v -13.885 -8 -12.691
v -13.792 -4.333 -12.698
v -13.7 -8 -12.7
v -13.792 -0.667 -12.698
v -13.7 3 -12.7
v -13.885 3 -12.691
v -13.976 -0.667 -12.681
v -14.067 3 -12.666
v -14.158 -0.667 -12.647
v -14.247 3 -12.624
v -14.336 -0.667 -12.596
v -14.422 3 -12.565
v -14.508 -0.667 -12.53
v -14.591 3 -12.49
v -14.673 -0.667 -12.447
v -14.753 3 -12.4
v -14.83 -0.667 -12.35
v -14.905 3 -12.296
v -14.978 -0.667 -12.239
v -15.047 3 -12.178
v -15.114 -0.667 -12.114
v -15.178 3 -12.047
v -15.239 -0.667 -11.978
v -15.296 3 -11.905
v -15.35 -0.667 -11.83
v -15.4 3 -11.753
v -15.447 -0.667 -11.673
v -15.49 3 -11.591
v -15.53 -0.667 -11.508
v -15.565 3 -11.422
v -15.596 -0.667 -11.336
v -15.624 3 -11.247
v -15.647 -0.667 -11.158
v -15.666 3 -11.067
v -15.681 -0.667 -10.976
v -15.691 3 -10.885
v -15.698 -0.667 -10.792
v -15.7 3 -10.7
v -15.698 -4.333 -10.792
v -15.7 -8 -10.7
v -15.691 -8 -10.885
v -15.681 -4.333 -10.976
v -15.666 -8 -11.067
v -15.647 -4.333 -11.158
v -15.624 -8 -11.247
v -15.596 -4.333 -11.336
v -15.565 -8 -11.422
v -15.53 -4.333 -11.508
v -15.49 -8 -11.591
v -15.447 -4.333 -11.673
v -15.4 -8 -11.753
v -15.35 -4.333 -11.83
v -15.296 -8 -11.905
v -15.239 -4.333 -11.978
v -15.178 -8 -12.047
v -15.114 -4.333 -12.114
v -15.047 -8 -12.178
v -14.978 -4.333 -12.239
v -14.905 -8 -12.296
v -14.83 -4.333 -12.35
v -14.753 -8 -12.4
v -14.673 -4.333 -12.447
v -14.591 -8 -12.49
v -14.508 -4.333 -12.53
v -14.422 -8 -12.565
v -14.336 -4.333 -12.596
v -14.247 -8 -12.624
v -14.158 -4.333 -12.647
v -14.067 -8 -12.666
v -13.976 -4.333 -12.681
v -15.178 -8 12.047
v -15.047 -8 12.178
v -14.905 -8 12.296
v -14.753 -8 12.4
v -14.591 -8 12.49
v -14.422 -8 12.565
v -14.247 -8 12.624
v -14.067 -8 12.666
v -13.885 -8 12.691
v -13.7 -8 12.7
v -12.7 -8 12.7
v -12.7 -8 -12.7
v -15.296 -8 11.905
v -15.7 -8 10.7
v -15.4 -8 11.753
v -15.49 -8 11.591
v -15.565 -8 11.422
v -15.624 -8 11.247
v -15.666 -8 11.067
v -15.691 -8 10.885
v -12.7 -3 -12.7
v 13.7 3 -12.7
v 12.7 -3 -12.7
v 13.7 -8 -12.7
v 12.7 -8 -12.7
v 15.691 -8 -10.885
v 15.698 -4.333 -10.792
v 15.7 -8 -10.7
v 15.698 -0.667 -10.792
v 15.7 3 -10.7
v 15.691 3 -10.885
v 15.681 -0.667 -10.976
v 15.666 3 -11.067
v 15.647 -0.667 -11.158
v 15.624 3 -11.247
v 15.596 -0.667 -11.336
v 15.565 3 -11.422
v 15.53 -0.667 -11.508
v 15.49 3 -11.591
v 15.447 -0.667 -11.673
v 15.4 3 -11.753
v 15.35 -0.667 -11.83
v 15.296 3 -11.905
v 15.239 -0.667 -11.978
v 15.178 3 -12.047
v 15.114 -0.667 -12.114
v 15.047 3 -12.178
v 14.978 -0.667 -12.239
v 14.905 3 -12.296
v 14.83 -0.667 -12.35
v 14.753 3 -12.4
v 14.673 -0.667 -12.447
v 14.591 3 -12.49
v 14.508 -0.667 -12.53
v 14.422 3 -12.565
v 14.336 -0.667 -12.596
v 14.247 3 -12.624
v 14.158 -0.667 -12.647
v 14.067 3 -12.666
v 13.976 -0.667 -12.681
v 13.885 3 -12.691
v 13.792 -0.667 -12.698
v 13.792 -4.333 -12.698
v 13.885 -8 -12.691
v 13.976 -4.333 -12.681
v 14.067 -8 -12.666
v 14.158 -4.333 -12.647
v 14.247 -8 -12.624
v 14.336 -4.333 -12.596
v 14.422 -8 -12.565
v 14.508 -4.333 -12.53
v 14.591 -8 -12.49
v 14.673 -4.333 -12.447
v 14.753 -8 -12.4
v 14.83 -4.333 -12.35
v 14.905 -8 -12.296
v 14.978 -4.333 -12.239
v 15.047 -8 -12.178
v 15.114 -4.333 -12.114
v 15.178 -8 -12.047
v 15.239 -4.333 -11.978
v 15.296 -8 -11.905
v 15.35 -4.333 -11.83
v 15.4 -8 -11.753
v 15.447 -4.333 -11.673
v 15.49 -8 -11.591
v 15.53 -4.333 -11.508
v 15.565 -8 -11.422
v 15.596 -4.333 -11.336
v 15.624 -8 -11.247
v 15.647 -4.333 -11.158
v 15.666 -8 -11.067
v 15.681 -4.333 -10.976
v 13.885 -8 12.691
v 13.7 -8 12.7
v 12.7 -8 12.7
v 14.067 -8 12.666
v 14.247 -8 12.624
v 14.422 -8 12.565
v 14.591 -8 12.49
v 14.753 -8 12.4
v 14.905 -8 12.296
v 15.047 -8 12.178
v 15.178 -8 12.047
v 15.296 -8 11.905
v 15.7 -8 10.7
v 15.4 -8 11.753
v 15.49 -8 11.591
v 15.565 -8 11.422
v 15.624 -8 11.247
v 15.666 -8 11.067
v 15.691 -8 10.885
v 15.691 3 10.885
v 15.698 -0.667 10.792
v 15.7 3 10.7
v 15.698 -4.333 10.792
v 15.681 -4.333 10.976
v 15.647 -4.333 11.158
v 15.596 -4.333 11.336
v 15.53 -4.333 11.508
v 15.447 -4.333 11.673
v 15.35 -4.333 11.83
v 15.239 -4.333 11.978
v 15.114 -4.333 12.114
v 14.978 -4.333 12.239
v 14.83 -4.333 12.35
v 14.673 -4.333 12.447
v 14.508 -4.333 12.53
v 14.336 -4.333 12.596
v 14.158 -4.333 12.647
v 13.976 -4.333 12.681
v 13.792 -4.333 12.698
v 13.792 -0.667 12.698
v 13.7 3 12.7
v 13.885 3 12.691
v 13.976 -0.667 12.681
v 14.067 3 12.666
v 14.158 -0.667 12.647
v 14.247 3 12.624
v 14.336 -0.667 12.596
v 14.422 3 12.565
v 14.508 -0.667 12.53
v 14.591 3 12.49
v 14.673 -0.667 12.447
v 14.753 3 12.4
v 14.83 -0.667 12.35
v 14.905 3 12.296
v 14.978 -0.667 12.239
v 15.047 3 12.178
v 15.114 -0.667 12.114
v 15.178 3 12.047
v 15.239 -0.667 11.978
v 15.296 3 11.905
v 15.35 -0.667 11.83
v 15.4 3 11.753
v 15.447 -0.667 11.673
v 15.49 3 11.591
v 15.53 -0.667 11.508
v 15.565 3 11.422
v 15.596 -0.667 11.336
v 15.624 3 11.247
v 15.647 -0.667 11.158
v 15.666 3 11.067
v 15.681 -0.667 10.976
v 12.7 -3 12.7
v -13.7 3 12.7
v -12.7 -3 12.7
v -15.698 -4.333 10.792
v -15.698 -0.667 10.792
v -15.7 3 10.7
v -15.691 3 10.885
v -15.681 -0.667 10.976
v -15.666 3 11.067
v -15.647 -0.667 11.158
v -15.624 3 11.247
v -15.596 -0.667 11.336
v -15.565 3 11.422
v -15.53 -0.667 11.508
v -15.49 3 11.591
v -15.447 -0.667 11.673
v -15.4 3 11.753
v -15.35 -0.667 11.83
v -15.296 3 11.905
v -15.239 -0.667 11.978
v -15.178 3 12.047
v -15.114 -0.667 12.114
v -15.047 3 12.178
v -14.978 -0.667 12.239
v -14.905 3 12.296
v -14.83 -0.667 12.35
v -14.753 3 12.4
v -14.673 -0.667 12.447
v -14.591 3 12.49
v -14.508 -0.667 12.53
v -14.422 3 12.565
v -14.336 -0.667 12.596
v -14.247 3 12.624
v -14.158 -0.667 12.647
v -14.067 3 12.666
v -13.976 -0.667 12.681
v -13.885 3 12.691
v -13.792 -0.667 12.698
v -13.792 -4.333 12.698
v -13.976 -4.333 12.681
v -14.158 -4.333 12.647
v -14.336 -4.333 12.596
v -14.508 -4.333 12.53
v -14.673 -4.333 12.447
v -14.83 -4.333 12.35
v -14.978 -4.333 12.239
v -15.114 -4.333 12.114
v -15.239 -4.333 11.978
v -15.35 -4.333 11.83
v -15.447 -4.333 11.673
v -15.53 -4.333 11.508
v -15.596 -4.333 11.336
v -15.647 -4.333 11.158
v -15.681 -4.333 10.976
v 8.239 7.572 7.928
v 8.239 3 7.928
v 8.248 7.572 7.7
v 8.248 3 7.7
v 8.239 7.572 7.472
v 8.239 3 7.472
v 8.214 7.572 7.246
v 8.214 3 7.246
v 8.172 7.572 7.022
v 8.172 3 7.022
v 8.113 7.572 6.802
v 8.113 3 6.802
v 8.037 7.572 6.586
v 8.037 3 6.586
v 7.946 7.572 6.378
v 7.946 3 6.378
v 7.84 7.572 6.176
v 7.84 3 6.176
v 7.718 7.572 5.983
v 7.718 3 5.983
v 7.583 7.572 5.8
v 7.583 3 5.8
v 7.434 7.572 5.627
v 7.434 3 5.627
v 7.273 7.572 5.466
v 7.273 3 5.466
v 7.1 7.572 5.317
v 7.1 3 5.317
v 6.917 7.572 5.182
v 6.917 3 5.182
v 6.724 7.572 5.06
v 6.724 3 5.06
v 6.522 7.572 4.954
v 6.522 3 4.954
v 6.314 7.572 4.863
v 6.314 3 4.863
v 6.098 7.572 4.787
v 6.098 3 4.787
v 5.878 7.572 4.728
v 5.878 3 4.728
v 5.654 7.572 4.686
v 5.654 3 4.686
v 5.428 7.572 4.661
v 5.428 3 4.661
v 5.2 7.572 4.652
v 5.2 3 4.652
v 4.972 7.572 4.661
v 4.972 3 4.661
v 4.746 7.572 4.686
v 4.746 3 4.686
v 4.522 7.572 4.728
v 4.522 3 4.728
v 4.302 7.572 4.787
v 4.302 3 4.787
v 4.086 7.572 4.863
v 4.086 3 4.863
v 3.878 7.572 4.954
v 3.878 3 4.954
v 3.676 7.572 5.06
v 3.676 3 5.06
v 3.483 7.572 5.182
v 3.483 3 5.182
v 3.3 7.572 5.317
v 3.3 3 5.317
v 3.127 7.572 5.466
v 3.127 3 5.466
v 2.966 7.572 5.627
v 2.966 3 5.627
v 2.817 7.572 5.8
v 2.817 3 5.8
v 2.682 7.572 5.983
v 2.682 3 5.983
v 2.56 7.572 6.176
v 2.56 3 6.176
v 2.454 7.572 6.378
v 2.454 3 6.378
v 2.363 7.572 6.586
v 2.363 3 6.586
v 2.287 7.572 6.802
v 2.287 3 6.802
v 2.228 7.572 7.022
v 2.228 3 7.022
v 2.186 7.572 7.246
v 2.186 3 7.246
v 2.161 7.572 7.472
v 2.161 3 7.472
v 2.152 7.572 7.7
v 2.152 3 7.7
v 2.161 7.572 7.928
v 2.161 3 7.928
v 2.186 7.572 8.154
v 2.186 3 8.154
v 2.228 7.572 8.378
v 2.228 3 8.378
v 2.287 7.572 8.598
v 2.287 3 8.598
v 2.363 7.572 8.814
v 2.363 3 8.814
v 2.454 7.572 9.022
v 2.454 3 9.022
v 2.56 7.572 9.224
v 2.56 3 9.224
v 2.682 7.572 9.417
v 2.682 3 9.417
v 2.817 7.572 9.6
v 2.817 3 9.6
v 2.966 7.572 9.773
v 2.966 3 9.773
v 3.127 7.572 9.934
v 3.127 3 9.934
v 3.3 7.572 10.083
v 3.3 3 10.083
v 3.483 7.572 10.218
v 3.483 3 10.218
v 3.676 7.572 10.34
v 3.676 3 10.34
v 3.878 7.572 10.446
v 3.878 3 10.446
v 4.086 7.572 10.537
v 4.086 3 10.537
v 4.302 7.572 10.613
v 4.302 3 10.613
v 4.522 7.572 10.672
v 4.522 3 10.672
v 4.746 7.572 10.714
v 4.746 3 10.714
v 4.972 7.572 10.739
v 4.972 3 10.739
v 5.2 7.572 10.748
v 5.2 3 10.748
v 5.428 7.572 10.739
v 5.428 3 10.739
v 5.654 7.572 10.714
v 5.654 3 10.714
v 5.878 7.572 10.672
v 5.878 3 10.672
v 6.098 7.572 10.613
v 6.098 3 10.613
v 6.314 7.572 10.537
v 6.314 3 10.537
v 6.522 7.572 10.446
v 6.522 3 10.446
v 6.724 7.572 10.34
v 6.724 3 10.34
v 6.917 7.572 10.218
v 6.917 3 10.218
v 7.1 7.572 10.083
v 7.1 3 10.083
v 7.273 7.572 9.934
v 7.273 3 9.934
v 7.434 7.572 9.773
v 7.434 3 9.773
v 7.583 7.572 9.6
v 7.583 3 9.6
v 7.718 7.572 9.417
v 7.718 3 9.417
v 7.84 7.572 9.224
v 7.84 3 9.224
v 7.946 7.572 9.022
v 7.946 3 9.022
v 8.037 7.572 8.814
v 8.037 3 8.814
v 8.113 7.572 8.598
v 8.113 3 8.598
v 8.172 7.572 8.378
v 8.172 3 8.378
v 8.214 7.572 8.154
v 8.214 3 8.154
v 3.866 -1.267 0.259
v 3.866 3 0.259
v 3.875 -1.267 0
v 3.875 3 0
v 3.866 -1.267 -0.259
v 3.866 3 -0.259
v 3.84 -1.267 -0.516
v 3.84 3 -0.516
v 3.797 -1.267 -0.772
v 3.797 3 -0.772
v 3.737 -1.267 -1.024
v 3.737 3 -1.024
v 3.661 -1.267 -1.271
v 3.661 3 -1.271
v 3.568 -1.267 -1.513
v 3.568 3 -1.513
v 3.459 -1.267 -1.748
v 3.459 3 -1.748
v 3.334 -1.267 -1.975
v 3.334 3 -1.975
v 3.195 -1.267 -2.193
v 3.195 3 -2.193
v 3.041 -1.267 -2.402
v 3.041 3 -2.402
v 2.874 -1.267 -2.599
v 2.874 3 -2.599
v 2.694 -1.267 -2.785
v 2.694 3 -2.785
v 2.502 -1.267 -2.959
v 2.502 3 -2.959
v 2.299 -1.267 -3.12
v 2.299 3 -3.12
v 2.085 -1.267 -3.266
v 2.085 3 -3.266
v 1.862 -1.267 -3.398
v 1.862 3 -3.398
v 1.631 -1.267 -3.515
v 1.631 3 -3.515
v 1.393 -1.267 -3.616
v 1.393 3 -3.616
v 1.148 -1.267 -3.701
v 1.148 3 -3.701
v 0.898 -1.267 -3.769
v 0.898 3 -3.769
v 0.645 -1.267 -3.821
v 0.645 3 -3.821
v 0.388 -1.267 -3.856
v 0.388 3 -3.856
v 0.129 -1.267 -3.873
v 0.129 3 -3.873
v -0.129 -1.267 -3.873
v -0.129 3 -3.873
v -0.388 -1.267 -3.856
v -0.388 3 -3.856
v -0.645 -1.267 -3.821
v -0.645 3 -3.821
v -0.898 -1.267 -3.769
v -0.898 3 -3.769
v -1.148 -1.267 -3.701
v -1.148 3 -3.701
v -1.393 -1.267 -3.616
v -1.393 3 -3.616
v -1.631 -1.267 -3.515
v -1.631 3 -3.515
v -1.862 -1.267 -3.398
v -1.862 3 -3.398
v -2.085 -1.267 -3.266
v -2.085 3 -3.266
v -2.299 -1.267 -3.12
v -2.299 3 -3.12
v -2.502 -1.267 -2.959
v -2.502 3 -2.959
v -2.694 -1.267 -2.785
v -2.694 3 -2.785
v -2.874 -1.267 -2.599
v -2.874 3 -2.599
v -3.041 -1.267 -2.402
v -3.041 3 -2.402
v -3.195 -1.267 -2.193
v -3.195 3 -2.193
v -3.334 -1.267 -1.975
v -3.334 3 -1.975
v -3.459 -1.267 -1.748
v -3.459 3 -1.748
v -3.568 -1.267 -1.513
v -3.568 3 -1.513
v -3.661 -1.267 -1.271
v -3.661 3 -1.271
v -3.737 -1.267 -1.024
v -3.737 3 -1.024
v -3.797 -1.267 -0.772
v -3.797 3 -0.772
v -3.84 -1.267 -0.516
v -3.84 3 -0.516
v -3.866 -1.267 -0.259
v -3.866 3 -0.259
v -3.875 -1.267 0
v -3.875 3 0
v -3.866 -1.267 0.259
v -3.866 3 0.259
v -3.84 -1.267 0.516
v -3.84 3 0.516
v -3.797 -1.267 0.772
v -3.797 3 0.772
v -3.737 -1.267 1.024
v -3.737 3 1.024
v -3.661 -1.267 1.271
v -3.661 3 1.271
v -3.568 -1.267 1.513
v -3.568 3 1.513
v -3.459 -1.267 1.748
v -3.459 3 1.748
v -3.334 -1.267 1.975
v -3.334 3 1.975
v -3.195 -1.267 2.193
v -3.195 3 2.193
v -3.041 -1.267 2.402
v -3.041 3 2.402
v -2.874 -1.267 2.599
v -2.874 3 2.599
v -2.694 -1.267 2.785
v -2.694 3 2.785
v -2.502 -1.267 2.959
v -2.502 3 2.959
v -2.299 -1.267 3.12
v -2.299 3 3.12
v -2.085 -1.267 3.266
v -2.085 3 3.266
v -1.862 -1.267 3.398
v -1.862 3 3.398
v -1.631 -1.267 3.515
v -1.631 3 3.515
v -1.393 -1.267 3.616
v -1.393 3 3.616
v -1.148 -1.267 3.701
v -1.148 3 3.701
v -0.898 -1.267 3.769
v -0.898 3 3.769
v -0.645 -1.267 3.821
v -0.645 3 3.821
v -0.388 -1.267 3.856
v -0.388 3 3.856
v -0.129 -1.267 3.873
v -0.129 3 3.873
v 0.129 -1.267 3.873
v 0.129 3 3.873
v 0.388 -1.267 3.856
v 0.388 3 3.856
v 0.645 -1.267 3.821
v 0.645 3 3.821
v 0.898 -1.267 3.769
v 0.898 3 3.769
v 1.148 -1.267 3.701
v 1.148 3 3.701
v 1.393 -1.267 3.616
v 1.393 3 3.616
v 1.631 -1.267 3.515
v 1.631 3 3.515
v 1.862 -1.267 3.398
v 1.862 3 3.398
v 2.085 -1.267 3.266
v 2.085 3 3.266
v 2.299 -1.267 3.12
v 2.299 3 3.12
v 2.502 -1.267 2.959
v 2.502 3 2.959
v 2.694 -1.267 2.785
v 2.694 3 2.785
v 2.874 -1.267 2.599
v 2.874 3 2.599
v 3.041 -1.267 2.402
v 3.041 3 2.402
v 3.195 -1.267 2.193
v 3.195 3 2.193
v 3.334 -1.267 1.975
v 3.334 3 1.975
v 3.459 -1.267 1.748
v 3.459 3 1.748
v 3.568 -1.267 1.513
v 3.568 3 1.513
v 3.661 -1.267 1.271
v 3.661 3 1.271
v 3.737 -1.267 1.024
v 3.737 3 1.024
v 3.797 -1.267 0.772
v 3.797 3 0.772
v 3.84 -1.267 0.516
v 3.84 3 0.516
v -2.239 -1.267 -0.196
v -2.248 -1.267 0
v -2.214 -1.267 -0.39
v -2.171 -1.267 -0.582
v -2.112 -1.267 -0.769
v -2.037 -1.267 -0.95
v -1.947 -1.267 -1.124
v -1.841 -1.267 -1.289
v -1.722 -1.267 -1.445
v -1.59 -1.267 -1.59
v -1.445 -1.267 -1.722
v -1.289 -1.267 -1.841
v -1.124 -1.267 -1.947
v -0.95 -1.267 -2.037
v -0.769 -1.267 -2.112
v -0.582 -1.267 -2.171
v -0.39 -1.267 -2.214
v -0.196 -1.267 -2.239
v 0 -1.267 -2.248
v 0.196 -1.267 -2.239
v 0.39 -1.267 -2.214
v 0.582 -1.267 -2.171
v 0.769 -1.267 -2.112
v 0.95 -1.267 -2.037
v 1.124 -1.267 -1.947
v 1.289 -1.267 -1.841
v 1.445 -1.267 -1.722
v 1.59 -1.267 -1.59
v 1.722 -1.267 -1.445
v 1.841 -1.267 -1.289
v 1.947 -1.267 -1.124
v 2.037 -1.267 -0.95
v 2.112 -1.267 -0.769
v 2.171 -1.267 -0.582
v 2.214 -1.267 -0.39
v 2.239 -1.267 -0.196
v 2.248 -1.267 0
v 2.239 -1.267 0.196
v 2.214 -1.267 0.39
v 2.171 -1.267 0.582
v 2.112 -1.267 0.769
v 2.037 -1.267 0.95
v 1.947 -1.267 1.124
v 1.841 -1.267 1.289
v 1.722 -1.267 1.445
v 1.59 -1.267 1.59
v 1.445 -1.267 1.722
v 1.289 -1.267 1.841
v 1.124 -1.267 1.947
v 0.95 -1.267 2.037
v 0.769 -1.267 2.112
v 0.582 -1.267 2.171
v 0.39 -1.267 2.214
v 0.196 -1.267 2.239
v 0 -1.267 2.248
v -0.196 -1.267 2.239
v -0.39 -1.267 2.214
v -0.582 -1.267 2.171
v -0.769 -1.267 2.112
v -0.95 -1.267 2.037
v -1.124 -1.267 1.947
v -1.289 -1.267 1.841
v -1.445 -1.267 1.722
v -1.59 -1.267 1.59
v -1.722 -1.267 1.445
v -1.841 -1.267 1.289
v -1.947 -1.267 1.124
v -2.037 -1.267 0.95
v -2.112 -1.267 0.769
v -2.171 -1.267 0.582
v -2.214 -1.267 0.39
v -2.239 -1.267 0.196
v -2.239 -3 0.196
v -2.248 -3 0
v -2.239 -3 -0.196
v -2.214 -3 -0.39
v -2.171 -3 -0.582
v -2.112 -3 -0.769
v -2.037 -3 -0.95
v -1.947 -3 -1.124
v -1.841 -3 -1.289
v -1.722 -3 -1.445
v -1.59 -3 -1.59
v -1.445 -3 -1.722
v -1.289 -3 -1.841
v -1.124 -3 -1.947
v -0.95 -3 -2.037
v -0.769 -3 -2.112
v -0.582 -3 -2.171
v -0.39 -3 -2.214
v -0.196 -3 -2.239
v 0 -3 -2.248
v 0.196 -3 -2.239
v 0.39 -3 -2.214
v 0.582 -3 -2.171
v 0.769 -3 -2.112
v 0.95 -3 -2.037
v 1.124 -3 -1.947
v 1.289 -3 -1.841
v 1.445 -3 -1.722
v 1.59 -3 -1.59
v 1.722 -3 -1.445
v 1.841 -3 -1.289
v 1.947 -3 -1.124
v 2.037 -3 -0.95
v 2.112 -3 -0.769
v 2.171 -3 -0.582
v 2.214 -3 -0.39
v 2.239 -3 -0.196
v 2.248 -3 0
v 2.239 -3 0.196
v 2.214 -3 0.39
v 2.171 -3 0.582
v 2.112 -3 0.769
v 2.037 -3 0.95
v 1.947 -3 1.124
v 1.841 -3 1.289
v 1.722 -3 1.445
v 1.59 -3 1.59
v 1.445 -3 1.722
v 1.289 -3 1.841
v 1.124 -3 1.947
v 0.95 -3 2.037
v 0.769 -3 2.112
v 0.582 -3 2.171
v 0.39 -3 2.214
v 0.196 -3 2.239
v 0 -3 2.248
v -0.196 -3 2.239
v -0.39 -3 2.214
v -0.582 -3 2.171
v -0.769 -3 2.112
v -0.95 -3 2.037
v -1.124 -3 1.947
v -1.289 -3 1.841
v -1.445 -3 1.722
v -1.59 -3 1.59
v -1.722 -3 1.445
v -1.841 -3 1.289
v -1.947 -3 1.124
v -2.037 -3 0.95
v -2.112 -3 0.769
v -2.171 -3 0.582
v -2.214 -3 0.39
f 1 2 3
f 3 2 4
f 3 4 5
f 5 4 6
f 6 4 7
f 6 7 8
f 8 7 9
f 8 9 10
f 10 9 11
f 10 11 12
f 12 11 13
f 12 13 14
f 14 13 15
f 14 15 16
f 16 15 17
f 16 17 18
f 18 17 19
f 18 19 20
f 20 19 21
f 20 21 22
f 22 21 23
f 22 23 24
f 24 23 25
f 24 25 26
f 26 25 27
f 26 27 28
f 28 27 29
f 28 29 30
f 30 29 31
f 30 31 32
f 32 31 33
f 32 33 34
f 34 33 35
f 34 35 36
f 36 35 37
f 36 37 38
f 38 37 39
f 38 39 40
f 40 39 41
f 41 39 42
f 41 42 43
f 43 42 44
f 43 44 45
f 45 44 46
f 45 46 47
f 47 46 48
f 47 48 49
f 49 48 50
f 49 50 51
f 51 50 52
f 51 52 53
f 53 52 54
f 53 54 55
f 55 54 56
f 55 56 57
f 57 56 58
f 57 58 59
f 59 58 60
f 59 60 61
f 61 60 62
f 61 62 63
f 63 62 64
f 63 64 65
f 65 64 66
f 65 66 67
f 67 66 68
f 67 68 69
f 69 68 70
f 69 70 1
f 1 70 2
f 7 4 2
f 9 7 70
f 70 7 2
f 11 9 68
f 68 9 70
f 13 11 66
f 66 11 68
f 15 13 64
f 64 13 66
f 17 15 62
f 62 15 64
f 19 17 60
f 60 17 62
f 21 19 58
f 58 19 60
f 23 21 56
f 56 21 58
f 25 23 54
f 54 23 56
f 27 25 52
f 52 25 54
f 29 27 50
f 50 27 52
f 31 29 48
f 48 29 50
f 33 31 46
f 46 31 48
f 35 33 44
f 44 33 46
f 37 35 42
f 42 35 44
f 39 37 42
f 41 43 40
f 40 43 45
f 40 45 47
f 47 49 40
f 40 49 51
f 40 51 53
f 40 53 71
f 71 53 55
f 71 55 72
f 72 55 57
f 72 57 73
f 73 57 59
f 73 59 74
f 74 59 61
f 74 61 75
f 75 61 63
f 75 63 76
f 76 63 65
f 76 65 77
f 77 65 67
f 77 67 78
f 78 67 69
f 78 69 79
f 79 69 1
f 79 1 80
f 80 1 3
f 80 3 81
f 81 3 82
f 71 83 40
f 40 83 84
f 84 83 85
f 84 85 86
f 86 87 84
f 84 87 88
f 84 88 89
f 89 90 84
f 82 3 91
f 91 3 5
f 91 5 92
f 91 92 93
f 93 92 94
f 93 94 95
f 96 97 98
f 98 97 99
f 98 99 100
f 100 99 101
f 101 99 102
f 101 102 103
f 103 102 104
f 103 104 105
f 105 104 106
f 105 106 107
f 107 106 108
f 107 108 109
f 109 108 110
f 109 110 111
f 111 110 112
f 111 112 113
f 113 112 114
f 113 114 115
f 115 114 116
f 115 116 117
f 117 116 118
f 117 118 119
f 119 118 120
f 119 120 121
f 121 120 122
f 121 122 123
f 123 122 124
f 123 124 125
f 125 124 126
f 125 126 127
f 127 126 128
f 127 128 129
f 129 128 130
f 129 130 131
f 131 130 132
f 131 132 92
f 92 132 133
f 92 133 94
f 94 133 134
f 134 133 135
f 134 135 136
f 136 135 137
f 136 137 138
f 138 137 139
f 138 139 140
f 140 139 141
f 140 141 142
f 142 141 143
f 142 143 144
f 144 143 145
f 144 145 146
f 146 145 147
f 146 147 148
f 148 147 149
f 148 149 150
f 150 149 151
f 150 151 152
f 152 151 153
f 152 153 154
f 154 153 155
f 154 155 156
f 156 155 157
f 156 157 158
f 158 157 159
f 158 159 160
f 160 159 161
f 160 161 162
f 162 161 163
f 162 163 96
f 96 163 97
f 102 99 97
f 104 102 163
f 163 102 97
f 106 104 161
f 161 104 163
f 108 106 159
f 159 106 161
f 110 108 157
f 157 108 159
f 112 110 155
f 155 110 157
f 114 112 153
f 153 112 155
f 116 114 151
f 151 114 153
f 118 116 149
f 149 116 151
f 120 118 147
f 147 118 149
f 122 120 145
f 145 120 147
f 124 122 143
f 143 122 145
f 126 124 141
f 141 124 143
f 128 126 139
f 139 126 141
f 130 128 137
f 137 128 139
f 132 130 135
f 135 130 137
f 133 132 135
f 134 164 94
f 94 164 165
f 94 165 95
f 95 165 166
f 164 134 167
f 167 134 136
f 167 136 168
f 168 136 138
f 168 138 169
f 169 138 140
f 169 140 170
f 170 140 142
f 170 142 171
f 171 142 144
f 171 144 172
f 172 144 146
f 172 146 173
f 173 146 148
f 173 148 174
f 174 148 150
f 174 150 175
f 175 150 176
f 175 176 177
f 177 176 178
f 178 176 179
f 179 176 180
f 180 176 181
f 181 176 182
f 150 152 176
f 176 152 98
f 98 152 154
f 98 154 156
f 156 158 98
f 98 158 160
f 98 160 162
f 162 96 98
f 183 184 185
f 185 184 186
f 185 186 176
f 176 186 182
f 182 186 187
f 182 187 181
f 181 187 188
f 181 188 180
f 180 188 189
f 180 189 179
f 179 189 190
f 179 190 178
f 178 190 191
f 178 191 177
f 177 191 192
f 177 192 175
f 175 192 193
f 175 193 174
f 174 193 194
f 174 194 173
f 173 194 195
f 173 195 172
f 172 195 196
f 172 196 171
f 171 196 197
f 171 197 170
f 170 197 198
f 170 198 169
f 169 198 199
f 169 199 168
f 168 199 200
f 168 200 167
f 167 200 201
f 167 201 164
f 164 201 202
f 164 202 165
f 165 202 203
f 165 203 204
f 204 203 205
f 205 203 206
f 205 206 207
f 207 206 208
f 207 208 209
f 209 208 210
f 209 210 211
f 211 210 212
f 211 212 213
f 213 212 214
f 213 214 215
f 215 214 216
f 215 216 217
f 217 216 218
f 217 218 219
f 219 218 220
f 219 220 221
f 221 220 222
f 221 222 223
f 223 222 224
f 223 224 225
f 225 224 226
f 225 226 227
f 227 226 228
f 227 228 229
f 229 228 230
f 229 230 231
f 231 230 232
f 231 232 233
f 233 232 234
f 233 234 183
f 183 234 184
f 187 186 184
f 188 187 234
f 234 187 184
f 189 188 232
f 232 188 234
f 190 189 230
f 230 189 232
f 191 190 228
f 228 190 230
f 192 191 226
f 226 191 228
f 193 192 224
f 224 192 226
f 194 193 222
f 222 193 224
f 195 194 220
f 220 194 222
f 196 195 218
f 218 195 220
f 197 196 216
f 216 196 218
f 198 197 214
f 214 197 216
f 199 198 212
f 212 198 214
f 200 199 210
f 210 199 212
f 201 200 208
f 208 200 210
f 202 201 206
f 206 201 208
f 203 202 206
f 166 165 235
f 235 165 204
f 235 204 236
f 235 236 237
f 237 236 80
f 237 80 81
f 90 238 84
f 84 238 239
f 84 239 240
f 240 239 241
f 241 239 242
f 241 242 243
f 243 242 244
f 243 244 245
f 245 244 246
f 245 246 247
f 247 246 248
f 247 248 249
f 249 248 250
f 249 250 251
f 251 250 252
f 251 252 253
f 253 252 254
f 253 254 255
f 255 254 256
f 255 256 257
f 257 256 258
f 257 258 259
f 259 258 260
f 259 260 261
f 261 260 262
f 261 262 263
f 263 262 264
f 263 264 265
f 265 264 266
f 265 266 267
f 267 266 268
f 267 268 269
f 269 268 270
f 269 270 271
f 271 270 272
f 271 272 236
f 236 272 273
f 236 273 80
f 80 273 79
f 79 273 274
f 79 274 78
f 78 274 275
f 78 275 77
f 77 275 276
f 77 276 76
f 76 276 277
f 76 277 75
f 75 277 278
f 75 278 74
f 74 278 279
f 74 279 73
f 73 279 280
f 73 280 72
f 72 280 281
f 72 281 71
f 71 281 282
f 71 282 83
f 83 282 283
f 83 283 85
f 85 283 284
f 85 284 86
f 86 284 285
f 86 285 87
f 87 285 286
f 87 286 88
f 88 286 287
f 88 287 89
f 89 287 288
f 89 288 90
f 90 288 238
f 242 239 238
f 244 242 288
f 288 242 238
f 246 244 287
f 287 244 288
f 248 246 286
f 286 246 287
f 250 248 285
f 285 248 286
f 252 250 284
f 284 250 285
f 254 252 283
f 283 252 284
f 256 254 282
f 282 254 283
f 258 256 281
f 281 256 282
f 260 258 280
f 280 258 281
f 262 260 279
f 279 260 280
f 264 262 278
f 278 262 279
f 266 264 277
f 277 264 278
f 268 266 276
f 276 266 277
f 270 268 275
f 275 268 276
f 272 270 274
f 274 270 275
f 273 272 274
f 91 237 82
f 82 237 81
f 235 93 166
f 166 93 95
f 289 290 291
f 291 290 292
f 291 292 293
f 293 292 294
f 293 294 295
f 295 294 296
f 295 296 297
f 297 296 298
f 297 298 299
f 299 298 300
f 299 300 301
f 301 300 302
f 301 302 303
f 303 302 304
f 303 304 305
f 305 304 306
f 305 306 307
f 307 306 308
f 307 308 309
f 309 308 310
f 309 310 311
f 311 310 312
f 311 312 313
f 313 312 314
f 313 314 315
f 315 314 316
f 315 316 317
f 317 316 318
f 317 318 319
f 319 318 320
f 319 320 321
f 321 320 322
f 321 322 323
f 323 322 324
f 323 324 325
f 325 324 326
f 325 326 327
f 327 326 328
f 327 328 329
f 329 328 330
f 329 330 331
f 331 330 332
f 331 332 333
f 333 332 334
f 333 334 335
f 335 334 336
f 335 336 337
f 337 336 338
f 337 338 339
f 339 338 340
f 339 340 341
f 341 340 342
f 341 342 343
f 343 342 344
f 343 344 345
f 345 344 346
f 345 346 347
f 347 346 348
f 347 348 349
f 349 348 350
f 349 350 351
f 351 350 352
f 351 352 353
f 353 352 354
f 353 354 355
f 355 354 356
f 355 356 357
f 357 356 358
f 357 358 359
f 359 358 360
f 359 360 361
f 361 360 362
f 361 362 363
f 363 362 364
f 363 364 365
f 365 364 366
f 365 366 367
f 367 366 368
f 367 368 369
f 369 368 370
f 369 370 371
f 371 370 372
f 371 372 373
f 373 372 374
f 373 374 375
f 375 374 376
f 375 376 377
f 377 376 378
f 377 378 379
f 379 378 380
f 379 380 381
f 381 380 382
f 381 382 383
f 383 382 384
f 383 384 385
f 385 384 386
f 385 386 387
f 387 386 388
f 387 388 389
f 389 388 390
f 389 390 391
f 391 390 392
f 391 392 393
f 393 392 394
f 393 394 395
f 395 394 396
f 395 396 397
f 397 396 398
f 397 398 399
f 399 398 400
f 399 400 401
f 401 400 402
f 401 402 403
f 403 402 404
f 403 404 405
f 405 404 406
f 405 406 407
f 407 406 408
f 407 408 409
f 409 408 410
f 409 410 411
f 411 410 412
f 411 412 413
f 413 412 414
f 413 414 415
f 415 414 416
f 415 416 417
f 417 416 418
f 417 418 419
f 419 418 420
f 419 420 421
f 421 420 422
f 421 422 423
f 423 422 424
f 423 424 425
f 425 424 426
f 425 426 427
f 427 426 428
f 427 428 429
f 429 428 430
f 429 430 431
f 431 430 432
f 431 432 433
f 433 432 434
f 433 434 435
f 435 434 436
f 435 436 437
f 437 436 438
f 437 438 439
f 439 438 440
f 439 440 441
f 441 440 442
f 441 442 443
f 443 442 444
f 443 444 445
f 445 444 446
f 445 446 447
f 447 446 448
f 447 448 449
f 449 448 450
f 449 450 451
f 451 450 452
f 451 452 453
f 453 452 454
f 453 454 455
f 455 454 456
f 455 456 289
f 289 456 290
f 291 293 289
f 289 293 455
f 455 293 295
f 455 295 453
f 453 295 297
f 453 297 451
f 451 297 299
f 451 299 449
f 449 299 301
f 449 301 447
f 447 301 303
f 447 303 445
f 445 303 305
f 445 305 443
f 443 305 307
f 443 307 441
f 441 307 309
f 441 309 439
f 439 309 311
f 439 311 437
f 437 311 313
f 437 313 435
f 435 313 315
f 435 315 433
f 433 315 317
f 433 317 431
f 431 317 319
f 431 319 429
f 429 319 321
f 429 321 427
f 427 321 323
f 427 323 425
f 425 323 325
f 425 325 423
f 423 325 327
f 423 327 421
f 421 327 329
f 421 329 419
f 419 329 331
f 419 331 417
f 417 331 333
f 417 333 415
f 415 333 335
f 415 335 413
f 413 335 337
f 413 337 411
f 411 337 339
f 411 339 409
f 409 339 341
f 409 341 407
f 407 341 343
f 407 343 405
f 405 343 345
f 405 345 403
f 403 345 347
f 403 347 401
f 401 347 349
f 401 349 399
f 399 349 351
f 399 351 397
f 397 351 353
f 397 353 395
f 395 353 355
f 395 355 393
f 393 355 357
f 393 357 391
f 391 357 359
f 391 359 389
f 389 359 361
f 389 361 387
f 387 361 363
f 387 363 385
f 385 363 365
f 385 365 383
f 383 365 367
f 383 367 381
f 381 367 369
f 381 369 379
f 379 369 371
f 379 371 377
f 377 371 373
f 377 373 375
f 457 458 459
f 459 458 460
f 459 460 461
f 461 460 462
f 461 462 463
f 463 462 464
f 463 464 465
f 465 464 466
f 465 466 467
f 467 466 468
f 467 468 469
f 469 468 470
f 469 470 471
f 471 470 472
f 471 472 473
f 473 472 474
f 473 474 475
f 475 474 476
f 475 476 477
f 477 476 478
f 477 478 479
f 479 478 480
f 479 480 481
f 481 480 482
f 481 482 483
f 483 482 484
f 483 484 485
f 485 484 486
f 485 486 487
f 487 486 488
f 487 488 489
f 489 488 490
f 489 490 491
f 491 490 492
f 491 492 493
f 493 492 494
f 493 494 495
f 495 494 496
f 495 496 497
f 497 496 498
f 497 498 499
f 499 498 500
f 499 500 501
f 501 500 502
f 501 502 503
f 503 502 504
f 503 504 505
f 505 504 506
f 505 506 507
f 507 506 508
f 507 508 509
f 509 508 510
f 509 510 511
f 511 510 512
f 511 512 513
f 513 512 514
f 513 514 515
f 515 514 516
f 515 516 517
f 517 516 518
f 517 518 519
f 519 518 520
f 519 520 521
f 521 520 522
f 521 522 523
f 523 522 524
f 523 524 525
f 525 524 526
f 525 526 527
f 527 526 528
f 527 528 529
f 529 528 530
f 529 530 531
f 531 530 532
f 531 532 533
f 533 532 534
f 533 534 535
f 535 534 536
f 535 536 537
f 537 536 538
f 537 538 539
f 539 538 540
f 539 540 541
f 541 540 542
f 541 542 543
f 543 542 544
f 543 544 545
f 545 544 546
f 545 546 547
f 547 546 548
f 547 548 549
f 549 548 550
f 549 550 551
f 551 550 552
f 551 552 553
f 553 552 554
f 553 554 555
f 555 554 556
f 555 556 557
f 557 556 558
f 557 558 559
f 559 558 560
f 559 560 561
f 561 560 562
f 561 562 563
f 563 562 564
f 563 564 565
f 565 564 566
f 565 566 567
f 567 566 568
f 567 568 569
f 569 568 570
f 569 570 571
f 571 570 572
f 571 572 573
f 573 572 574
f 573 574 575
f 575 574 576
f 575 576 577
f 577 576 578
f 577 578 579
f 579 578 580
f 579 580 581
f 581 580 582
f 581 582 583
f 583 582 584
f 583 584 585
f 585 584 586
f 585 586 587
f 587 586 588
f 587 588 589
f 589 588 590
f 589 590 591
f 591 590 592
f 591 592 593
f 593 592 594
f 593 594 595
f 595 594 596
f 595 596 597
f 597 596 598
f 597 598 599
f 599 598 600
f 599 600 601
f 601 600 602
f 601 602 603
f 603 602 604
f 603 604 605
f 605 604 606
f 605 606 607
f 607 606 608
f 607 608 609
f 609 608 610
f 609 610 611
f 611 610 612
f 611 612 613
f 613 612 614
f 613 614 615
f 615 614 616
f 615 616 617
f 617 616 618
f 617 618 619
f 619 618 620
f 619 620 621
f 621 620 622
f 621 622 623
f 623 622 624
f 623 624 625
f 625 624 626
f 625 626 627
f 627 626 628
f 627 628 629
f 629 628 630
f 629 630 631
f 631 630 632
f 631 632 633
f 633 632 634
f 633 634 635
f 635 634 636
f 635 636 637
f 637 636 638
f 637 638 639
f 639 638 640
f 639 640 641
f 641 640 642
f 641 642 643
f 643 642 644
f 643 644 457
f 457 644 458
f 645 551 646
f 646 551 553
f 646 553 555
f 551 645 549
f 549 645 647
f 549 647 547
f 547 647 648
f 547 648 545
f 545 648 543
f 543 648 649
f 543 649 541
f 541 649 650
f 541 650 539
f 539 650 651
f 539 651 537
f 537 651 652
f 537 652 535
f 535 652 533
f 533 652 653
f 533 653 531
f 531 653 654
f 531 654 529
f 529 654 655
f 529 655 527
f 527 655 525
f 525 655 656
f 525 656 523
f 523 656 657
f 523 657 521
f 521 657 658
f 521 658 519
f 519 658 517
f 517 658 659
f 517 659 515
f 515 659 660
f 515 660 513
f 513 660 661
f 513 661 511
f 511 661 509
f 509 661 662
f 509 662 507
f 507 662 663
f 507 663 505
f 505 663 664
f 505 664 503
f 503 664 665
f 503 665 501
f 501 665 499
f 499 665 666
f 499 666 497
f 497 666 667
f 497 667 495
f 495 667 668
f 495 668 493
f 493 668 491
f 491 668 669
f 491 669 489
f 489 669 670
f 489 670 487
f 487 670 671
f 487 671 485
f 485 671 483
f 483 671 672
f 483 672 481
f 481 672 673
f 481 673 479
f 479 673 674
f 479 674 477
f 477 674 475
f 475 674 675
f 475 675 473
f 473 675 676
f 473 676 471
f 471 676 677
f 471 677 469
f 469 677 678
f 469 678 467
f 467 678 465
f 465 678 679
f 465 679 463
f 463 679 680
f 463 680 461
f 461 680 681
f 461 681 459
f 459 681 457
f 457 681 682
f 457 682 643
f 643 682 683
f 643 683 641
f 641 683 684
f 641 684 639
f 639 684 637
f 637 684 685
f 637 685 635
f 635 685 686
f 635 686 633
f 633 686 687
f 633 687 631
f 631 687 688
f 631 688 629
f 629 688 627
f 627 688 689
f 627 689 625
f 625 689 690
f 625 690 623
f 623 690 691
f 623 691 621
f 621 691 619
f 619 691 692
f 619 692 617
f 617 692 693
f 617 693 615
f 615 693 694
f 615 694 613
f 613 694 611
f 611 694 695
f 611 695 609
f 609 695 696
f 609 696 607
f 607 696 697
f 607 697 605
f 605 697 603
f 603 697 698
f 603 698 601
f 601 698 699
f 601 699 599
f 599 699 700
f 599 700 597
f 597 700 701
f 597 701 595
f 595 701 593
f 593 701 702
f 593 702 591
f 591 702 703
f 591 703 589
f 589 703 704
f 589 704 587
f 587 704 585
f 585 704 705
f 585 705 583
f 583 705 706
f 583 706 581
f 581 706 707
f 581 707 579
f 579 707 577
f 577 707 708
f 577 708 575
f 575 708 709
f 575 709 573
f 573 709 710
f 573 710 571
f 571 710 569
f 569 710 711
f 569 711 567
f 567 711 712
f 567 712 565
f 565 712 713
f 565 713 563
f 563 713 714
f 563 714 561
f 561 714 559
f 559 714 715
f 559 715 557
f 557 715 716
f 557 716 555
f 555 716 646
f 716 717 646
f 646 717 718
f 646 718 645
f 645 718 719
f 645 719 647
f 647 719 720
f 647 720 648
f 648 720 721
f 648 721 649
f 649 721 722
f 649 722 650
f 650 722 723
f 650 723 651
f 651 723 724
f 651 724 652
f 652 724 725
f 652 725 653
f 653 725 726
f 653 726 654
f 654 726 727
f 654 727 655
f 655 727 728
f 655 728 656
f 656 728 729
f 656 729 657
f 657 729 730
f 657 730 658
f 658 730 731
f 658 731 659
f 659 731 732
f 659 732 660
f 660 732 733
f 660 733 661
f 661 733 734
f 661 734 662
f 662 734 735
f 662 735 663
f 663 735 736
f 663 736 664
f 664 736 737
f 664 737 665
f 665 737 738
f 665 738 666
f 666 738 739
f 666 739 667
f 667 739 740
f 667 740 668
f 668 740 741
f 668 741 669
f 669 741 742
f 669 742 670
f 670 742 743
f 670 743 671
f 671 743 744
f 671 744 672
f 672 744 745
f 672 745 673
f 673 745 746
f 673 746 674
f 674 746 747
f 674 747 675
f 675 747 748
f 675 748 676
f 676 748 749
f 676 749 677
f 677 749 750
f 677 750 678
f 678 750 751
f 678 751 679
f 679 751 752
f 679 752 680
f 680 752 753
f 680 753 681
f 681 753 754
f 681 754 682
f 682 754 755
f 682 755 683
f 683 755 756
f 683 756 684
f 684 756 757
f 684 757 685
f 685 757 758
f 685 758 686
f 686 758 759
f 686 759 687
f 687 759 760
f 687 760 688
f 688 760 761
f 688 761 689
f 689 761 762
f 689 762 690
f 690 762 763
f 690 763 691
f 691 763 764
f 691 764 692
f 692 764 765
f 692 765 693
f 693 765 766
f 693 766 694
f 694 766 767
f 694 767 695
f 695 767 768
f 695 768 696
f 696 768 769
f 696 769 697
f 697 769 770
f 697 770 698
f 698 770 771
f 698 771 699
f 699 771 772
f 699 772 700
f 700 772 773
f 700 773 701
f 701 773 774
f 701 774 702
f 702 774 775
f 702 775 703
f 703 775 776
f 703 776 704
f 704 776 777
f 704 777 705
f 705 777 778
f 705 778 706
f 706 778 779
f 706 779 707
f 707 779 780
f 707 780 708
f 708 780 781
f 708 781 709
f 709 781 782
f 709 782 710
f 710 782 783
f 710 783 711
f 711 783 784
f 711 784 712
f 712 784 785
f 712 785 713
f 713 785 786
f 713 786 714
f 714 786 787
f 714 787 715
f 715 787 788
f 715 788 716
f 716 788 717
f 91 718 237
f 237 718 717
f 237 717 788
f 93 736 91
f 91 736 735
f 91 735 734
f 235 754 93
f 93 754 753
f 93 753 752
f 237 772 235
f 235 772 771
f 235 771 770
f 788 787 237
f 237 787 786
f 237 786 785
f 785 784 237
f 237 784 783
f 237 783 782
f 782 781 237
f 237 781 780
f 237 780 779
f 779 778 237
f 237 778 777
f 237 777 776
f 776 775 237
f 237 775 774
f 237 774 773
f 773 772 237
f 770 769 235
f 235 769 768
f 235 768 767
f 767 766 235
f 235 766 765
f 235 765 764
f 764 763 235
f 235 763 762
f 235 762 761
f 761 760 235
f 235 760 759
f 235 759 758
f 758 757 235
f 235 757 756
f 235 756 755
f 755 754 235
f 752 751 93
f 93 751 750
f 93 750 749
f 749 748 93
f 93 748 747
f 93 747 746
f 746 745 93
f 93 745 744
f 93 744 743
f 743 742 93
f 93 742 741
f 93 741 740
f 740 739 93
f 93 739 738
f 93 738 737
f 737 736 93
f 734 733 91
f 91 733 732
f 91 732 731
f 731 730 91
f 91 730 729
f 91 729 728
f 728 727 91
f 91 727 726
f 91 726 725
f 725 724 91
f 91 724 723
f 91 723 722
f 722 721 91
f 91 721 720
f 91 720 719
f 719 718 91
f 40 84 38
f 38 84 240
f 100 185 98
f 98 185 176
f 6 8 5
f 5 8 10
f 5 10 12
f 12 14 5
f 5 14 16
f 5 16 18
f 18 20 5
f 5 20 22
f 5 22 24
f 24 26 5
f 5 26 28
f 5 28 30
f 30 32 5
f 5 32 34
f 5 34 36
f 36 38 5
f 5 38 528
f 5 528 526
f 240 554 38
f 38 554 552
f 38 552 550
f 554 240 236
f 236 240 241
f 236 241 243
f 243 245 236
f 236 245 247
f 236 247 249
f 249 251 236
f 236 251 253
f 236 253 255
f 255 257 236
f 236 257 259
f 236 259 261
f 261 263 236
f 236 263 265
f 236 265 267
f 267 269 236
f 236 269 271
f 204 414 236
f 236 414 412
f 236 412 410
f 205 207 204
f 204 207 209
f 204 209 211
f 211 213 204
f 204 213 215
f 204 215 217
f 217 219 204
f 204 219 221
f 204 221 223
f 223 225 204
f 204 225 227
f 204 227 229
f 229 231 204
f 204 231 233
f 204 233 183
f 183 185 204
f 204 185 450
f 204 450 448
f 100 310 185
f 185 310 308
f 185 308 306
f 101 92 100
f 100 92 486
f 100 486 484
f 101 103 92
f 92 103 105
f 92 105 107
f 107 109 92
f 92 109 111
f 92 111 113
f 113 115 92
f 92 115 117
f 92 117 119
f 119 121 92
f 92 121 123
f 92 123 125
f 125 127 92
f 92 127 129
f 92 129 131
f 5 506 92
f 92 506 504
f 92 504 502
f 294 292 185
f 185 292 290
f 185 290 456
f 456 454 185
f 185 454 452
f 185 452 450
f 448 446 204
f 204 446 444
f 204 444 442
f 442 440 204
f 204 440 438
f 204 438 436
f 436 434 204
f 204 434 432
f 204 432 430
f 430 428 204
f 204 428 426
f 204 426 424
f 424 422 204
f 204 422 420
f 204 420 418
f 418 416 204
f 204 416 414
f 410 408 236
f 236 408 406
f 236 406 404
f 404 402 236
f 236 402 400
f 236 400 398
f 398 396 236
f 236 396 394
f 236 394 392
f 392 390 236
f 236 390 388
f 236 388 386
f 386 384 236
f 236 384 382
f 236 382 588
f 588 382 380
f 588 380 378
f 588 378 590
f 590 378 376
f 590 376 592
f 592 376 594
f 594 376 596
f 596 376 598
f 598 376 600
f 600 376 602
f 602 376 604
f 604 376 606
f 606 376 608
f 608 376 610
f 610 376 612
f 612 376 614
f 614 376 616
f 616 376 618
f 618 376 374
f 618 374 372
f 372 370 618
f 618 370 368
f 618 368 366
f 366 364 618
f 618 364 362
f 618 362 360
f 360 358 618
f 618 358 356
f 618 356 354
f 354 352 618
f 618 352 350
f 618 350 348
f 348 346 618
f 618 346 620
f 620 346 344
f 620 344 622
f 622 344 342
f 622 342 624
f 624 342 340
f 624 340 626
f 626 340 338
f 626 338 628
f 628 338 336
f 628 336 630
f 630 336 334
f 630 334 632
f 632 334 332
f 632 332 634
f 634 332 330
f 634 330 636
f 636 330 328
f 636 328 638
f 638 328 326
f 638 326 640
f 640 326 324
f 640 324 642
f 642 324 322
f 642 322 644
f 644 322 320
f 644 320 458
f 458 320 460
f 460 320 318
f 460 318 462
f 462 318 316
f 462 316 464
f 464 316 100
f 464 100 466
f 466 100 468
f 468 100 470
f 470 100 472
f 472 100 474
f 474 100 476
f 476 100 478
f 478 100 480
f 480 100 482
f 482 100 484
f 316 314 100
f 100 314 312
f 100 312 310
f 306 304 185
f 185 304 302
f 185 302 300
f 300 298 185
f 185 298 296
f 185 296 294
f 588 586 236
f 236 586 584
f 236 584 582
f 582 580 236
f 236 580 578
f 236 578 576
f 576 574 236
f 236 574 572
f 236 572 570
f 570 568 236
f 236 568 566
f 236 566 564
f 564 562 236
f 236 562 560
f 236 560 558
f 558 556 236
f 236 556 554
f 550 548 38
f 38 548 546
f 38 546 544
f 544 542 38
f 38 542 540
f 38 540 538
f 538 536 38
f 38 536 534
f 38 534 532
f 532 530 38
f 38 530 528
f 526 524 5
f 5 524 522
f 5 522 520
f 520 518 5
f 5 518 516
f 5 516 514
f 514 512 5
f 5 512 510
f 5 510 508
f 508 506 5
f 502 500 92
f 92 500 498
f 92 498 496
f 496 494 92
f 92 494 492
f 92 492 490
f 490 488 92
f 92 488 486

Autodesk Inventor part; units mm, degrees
ref_plane "YZ Plane" through (0, 0, 0) normal (1, 0, 0) x (0, 1, 0)
ref_plane "XZ Plane" through (0, 0, 0) normal (0, 1, 0) x (-1, 0, 0)
ref_plane "XY Plane" through (0, 0, 0) normal (0, 0, 1) x (1, 0, 0)
sketch "Sketch1" plane through (0, 0, 0) normal (0, 1, 0) x (-1, 0, 0)
  line L0 (-15.7, 12.7) -> (15.7, 12.7)
  line L1 (15.7, 12.7) -> (15.7, -12.7)
  line L2 (15.7, -12.7) -> (-15.7, -12.7)
  line L3 (-15.7, -12.7) -> (-15.7, 12.7)
  line L4 (-15.7, 12.7) -> (15.7, -12.7) construction
  line L5 (15.7, 12.7) -> (-15.7, -12.7) construction
  point P0 (0, 0)
  dimension "d0" = 25.4
  dimension "d1" = 31.4
extrude "Extrusion1" add sketch "Sketch1" along normal mid plane 6
sketch "Sketch2" plane through (0, 3, 0) normal (0, 1, 0) x (1, 0, 0)
  point P0 (0, 0)
hole "Hole1" at (0, 3, 0) direction (0, -1, 0) diameter 4.496 end through all clearance for "Flat Head Machine Screw (82)" size "#8" standard "Ansi Unified Screw Threads"
sketch "Sketch3" plane through (0, 3, 0) normal (0, 1, 0) x (1, 0, 0)
  circle A0 centre (0, 0) radius 3.875
  dimension "d11" = 7.75
extrude "Extrusion2" cut sketch "Sketch3" against normal blind 4.2672
sketch "Sketch4" plane through (0, 3, 0) normal (0, 1, 0) x (1, 0, 0)
  circle A0 centre (5.2, -7.7) radius 3.048
  line L0 (-15.7, -12.7) -> (15.7, -12.7) construction
  line L1 (15.7, -12.7) -> (15.7, 12.7) construction
  point P0 (0, 0)
  dimension "d14" = 6.096
  dimension "d18" = 5
  dimension "d23" = 10.5
extrude "Extrusion3" add sketch "Sketch4" along normal blind 4.572
sketch "Sketch5" plane through (0, -3, 0) normal (0, -1, 0) x (1, 0, 0)
  line L0 (-15.7, 12.7) -> (15.7, 12.7) projected
  line L1 (15.7, 12.7) -> (12.7, 12.7)
  line L2 (12.7, 12.7) -> (12.7, -12.7)
  line L3 (12.7, -12.7) -> (15.7, -12.7)
  line L4 (15.7, -12.7) -> (15.7, 12.7)
  line L5 (-15.7, 12.7) -> (-12.7, 12.7)
  line L6 (-12.7, 12.7) -> (-12.7, -12.7)
  line L7 (-12.7, -12.7) -> (-15.7, -12.7)
  line L8 (-15.7, -12.7) -> (-15.7, 12.7)
  line L9 (-15.7, -12.7) -> (15.7, -12.7) projected
  line L10 (12.7, 0) -> (-12.7, 0) construction
  point P0 (0, 0)
  point P1 (0, 0)
  dimension "d20" = 25.4
extrude "Extrusion4" add sketch "Sketch5" along normal blind 5 contours L0 L6 L7 L8 | L0 L4 L3 L2
fillet "Fillet1" radius 2 4 edges at (-15.7, -2.5, 12.7) (15.7, -2.5, 12.7) (15.7, -2.5, -12.7) (-15.7, -2.5, -12.7)
properties part number "BearingMount"
